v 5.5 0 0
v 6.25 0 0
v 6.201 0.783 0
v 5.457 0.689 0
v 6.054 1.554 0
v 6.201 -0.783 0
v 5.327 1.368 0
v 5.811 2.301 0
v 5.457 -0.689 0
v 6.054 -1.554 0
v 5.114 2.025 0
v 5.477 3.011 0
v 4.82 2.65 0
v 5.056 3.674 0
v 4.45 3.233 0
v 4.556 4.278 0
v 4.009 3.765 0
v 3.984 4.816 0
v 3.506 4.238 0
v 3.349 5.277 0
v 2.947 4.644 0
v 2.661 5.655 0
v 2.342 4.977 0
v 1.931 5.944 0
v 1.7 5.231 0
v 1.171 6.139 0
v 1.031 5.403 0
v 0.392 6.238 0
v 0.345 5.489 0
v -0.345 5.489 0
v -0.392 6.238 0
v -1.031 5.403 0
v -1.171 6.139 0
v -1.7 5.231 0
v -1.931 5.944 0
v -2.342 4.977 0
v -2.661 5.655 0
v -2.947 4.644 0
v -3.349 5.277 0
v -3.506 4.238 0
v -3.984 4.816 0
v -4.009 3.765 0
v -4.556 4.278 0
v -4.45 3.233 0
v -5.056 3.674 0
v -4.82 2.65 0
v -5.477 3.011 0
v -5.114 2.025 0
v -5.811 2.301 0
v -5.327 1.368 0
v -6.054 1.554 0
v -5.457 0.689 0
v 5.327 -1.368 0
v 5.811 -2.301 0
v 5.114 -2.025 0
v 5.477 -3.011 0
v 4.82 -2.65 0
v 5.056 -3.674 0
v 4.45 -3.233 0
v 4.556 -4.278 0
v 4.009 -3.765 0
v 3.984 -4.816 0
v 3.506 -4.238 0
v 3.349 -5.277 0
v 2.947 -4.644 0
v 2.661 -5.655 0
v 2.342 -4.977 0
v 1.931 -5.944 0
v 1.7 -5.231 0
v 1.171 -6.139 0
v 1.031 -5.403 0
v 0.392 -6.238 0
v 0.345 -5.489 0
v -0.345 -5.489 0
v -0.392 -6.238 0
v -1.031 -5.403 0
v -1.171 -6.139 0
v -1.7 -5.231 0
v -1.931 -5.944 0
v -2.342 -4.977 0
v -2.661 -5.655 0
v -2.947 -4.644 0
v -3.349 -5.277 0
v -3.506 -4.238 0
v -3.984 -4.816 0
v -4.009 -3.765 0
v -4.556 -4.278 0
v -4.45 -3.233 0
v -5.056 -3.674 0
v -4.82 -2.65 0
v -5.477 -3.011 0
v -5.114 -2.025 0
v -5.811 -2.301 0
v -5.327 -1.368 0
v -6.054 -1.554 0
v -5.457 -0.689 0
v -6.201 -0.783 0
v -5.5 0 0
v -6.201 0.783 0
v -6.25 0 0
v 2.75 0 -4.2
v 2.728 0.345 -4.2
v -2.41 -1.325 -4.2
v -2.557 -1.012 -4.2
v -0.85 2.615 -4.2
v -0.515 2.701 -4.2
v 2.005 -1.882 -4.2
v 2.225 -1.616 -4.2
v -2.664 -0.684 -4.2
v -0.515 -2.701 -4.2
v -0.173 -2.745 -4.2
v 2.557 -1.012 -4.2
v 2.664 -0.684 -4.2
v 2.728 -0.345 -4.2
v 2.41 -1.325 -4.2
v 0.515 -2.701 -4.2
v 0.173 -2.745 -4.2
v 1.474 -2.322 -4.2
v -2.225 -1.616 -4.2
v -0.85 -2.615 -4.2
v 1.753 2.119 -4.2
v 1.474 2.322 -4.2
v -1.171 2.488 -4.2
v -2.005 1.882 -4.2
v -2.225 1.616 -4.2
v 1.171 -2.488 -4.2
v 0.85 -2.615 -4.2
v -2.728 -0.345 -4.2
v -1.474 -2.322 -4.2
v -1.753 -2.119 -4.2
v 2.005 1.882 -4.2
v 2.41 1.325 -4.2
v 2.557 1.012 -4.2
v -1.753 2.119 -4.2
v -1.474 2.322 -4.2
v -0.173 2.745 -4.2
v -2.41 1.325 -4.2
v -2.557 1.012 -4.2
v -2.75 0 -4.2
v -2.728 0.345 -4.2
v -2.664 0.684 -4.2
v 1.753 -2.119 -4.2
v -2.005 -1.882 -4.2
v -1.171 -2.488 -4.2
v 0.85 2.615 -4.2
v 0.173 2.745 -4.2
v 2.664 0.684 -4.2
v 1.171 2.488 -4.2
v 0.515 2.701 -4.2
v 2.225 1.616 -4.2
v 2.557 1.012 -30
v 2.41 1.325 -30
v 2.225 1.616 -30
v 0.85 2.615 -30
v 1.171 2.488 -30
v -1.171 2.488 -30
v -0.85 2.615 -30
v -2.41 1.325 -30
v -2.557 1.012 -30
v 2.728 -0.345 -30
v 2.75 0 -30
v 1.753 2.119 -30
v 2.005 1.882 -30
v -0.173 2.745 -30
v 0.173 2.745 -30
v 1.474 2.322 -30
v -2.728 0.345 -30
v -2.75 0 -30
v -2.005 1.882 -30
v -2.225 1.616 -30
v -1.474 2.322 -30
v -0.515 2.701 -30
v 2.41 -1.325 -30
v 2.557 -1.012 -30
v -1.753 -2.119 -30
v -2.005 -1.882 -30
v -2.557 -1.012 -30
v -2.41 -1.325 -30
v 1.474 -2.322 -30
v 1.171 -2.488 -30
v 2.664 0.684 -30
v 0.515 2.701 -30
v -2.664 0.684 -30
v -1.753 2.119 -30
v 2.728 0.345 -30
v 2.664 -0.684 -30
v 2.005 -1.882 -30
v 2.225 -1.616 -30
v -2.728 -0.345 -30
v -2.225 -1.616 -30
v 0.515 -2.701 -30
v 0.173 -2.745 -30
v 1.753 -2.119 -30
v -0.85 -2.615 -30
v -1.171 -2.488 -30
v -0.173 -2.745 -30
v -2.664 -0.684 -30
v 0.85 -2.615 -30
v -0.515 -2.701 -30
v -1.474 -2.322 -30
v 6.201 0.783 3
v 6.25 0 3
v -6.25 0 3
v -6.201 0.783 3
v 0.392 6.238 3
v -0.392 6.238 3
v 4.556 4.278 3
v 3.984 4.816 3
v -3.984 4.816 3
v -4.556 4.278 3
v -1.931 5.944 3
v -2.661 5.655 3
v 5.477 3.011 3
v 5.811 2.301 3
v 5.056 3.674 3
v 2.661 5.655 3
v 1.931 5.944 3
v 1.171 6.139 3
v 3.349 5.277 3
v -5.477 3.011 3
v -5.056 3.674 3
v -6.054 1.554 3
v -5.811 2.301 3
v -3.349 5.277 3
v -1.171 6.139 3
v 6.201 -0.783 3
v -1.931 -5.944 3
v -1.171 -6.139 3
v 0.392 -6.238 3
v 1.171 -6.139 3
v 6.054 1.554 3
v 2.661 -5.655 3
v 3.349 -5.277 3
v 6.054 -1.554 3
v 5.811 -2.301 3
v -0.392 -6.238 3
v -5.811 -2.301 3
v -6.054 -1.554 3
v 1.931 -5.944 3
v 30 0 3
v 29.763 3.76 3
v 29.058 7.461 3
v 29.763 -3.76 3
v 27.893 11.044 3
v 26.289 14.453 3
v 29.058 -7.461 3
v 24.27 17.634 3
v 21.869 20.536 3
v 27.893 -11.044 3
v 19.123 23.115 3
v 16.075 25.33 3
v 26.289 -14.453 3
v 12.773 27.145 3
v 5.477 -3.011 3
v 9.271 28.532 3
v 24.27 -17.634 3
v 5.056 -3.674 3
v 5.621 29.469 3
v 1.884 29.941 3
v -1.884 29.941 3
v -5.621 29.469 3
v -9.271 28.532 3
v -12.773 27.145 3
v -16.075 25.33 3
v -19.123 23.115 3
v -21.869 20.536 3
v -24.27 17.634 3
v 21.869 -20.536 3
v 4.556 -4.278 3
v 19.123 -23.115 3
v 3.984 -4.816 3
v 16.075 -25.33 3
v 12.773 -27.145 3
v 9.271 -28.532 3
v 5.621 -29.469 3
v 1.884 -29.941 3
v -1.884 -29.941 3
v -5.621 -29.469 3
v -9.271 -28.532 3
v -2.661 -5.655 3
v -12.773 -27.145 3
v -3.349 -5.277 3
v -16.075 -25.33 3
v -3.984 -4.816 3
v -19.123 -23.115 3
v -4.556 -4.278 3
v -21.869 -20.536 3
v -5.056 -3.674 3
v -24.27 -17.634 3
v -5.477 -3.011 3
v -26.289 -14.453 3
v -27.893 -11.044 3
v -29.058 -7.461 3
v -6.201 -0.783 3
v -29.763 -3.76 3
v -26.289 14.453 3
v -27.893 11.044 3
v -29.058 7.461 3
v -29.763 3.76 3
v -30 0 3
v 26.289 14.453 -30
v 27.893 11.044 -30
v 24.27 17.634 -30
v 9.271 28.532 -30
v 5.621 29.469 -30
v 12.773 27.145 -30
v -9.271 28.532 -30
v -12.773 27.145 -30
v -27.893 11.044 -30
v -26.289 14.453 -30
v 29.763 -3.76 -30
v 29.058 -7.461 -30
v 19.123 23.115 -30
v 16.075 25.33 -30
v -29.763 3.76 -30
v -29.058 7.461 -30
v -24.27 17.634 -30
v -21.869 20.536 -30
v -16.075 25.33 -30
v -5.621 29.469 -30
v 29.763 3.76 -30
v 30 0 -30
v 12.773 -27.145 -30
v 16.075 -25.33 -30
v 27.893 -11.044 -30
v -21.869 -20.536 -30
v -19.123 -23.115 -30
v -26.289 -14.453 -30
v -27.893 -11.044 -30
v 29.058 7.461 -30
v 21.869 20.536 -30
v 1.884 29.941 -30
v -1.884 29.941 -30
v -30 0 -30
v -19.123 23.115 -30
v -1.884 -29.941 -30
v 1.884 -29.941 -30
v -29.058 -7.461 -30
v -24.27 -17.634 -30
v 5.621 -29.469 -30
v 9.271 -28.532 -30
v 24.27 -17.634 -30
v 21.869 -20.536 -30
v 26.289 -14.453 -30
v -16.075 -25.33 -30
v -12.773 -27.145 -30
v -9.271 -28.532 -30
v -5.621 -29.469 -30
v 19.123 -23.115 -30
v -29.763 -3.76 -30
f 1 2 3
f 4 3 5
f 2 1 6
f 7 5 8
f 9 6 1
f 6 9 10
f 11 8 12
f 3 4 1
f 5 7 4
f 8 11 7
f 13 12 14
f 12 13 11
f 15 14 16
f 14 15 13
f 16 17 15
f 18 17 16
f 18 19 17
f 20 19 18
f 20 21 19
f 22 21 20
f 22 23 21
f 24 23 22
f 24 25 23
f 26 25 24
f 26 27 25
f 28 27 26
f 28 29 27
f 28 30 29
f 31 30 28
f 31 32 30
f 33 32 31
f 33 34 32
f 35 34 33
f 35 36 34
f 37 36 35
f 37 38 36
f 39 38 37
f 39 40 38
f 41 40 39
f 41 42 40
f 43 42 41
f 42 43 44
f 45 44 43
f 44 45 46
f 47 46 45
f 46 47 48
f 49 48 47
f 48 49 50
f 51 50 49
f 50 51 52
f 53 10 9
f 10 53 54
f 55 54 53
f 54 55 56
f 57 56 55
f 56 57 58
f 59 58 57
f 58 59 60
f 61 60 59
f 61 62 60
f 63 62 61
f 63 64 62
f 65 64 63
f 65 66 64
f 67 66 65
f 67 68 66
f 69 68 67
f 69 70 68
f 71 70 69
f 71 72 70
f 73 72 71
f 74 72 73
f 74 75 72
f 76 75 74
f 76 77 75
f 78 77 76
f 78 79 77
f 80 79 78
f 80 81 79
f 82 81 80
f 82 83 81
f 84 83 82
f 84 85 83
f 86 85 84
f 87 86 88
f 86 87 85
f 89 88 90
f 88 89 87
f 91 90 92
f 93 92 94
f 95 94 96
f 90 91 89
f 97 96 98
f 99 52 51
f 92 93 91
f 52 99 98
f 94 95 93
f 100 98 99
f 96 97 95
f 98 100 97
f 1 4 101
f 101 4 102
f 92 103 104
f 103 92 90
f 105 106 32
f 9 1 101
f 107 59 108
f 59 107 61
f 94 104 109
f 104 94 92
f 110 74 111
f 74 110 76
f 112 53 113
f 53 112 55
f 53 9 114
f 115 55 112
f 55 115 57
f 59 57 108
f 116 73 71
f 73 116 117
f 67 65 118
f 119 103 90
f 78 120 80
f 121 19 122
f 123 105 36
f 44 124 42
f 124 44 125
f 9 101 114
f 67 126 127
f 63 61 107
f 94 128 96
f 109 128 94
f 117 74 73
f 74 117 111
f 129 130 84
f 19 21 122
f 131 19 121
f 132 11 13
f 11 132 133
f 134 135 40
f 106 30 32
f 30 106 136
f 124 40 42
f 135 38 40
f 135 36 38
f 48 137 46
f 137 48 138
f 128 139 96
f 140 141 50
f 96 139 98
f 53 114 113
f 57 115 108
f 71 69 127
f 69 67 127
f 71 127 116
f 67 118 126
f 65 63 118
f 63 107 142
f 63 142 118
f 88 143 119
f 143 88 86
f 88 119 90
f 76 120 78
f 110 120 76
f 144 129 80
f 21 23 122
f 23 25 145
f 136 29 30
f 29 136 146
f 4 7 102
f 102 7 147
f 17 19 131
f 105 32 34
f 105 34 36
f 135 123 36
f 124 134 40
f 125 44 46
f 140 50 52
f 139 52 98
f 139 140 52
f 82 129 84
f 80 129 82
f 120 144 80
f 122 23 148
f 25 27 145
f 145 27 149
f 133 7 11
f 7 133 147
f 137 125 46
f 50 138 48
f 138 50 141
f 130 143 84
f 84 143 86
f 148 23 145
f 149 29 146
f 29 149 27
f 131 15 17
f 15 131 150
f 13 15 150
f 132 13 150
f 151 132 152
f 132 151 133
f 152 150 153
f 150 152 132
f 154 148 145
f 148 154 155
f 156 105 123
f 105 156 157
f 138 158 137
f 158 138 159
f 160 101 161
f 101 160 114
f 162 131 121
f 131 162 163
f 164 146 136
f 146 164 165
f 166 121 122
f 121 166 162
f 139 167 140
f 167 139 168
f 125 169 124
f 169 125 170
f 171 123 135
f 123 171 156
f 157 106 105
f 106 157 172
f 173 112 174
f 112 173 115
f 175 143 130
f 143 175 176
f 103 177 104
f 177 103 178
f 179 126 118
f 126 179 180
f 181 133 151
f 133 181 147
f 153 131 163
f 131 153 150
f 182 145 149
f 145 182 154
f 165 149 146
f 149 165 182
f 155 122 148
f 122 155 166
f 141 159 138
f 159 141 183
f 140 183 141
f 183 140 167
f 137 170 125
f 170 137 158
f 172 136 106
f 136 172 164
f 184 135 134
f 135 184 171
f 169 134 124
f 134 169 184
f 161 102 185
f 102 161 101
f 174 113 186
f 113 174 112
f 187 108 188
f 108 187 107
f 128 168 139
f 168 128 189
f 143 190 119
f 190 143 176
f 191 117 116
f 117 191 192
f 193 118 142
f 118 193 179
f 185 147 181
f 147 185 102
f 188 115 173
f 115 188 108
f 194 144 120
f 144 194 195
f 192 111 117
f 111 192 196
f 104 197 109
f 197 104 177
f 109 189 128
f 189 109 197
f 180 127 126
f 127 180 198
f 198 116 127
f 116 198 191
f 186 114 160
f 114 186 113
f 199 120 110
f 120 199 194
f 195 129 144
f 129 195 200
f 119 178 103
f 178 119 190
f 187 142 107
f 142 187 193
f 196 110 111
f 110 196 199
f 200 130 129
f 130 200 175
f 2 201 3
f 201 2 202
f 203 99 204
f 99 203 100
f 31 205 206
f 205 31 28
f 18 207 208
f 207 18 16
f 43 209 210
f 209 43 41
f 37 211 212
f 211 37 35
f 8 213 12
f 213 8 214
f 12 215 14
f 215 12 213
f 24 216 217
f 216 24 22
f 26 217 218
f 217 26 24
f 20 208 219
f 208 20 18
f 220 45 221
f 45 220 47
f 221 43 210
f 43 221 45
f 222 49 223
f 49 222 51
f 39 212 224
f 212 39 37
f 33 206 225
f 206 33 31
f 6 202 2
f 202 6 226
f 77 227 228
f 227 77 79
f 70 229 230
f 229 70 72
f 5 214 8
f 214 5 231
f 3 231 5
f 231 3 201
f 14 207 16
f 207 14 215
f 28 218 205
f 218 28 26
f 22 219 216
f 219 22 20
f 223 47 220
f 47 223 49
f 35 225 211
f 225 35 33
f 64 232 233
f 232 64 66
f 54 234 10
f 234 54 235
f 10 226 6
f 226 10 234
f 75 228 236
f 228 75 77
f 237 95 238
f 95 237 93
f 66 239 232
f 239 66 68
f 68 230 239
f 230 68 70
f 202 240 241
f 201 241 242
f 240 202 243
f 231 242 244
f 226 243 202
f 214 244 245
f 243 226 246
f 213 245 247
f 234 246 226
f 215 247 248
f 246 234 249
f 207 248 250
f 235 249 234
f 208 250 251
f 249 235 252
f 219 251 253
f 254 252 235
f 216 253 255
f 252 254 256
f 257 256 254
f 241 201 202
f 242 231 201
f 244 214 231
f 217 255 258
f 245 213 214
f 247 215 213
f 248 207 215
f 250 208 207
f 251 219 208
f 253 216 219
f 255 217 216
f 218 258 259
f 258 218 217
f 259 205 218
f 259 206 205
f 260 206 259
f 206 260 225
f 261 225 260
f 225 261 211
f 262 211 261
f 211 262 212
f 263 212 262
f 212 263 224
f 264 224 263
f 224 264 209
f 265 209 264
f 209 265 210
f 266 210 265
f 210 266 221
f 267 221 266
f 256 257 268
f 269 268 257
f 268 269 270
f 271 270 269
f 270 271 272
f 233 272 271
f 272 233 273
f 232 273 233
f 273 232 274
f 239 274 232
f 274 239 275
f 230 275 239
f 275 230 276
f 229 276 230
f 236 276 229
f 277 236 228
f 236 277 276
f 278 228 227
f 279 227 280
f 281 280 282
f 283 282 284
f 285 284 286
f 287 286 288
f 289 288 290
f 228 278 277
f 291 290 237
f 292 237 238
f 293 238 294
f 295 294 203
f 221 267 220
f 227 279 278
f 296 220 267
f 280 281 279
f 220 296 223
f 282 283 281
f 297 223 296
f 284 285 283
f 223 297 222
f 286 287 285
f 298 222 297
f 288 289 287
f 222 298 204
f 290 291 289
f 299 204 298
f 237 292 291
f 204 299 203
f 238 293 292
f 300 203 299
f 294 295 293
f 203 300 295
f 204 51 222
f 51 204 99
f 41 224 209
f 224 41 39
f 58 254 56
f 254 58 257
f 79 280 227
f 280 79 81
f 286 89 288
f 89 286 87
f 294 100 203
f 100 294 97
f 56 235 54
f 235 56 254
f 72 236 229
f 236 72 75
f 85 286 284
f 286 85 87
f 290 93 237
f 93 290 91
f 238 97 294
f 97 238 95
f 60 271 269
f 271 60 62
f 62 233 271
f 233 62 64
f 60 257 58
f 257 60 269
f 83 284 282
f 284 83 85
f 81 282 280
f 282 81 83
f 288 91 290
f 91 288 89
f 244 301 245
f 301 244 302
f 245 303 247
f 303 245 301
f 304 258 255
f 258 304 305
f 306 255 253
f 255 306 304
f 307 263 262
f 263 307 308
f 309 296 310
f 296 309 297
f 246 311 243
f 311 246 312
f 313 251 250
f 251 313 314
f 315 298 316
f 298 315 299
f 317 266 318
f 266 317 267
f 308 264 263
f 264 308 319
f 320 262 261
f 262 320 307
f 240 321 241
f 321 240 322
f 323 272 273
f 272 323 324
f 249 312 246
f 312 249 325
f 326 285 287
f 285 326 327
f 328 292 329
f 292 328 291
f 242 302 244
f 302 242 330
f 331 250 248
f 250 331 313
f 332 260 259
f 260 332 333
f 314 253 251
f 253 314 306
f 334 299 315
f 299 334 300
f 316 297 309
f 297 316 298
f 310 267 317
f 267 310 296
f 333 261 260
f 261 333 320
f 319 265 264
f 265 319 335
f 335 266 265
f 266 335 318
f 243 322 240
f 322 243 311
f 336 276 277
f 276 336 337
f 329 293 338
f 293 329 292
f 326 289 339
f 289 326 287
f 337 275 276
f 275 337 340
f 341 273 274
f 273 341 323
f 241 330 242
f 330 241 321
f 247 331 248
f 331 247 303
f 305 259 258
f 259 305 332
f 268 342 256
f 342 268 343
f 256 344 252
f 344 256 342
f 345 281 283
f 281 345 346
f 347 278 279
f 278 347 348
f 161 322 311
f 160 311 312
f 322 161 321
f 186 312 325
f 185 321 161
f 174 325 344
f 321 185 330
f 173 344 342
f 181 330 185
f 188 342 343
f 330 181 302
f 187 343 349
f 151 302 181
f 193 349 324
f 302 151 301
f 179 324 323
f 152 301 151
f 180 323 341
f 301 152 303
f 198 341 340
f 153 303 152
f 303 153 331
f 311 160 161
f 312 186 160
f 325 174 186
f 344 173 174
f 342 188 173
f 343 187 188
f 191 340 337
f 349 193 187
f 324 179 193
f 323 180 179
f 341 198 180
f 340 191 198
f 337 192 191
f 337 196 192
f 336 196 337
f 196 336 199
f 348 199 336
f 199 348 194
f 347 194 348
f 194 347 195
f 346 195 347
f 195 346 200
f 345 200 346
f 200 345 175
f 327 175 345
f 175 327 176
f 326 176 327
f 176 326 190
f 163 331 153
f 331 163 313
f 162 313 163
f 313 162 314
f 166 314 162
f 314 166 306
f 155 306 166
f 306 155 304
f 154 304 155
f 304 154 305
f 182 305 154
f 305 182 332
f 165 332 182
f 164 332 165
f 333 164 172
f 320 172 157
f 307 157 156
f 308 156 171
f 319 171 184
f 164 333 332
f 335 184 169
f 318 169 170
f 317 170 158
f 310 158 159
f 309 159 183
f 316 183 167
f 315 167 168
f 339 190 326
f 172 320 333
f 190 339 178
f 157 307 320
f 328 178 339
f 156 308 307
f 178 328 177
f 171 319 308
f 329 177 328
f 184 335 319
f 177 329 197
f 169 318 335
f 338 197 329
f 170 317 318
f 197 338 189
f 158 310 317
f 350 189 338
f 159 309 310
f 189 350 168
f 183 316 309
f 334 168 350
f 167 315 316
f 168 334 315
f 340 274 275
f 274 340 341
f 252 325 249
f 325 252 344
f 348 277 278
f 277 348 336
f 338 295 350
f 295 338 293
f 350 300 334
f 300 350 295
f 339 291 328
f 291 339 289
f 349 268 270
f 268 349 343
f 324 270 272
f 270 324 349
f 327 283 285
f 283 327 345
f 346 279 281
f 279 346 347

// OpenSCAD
$fn = 50;

difference() {
	union() {
		translate(v = [0, 0, -30.0]) {
			cylinder(h = 33, r = 30.0);
		}
	}
	union() {
		translate(v = [0, 0, 0]) {
			rotate(a = [0, 0, 0]) {
				difference() {
					union() {
						translate(v = [0, 0, -33.0]) {
							cylinder(h = 33, r = 2.25);
						}
						translate(v = [0, 0, -4.2]) {
							cylinder(h = 4.2, r1 = 2.75, r2 = 5.5);
						}
						translate(v = [0, 0, -33.0]) {
							cylinder(h = 33, r = 2.75);
						}
						translate(v = [0, 0, -33.0]) {
							cylinder(h = 33, r = 2.25);
						}
					}
					union();
				}
			}
		}
		#cylinder(h = 3, r = 6.25);
	}
}
